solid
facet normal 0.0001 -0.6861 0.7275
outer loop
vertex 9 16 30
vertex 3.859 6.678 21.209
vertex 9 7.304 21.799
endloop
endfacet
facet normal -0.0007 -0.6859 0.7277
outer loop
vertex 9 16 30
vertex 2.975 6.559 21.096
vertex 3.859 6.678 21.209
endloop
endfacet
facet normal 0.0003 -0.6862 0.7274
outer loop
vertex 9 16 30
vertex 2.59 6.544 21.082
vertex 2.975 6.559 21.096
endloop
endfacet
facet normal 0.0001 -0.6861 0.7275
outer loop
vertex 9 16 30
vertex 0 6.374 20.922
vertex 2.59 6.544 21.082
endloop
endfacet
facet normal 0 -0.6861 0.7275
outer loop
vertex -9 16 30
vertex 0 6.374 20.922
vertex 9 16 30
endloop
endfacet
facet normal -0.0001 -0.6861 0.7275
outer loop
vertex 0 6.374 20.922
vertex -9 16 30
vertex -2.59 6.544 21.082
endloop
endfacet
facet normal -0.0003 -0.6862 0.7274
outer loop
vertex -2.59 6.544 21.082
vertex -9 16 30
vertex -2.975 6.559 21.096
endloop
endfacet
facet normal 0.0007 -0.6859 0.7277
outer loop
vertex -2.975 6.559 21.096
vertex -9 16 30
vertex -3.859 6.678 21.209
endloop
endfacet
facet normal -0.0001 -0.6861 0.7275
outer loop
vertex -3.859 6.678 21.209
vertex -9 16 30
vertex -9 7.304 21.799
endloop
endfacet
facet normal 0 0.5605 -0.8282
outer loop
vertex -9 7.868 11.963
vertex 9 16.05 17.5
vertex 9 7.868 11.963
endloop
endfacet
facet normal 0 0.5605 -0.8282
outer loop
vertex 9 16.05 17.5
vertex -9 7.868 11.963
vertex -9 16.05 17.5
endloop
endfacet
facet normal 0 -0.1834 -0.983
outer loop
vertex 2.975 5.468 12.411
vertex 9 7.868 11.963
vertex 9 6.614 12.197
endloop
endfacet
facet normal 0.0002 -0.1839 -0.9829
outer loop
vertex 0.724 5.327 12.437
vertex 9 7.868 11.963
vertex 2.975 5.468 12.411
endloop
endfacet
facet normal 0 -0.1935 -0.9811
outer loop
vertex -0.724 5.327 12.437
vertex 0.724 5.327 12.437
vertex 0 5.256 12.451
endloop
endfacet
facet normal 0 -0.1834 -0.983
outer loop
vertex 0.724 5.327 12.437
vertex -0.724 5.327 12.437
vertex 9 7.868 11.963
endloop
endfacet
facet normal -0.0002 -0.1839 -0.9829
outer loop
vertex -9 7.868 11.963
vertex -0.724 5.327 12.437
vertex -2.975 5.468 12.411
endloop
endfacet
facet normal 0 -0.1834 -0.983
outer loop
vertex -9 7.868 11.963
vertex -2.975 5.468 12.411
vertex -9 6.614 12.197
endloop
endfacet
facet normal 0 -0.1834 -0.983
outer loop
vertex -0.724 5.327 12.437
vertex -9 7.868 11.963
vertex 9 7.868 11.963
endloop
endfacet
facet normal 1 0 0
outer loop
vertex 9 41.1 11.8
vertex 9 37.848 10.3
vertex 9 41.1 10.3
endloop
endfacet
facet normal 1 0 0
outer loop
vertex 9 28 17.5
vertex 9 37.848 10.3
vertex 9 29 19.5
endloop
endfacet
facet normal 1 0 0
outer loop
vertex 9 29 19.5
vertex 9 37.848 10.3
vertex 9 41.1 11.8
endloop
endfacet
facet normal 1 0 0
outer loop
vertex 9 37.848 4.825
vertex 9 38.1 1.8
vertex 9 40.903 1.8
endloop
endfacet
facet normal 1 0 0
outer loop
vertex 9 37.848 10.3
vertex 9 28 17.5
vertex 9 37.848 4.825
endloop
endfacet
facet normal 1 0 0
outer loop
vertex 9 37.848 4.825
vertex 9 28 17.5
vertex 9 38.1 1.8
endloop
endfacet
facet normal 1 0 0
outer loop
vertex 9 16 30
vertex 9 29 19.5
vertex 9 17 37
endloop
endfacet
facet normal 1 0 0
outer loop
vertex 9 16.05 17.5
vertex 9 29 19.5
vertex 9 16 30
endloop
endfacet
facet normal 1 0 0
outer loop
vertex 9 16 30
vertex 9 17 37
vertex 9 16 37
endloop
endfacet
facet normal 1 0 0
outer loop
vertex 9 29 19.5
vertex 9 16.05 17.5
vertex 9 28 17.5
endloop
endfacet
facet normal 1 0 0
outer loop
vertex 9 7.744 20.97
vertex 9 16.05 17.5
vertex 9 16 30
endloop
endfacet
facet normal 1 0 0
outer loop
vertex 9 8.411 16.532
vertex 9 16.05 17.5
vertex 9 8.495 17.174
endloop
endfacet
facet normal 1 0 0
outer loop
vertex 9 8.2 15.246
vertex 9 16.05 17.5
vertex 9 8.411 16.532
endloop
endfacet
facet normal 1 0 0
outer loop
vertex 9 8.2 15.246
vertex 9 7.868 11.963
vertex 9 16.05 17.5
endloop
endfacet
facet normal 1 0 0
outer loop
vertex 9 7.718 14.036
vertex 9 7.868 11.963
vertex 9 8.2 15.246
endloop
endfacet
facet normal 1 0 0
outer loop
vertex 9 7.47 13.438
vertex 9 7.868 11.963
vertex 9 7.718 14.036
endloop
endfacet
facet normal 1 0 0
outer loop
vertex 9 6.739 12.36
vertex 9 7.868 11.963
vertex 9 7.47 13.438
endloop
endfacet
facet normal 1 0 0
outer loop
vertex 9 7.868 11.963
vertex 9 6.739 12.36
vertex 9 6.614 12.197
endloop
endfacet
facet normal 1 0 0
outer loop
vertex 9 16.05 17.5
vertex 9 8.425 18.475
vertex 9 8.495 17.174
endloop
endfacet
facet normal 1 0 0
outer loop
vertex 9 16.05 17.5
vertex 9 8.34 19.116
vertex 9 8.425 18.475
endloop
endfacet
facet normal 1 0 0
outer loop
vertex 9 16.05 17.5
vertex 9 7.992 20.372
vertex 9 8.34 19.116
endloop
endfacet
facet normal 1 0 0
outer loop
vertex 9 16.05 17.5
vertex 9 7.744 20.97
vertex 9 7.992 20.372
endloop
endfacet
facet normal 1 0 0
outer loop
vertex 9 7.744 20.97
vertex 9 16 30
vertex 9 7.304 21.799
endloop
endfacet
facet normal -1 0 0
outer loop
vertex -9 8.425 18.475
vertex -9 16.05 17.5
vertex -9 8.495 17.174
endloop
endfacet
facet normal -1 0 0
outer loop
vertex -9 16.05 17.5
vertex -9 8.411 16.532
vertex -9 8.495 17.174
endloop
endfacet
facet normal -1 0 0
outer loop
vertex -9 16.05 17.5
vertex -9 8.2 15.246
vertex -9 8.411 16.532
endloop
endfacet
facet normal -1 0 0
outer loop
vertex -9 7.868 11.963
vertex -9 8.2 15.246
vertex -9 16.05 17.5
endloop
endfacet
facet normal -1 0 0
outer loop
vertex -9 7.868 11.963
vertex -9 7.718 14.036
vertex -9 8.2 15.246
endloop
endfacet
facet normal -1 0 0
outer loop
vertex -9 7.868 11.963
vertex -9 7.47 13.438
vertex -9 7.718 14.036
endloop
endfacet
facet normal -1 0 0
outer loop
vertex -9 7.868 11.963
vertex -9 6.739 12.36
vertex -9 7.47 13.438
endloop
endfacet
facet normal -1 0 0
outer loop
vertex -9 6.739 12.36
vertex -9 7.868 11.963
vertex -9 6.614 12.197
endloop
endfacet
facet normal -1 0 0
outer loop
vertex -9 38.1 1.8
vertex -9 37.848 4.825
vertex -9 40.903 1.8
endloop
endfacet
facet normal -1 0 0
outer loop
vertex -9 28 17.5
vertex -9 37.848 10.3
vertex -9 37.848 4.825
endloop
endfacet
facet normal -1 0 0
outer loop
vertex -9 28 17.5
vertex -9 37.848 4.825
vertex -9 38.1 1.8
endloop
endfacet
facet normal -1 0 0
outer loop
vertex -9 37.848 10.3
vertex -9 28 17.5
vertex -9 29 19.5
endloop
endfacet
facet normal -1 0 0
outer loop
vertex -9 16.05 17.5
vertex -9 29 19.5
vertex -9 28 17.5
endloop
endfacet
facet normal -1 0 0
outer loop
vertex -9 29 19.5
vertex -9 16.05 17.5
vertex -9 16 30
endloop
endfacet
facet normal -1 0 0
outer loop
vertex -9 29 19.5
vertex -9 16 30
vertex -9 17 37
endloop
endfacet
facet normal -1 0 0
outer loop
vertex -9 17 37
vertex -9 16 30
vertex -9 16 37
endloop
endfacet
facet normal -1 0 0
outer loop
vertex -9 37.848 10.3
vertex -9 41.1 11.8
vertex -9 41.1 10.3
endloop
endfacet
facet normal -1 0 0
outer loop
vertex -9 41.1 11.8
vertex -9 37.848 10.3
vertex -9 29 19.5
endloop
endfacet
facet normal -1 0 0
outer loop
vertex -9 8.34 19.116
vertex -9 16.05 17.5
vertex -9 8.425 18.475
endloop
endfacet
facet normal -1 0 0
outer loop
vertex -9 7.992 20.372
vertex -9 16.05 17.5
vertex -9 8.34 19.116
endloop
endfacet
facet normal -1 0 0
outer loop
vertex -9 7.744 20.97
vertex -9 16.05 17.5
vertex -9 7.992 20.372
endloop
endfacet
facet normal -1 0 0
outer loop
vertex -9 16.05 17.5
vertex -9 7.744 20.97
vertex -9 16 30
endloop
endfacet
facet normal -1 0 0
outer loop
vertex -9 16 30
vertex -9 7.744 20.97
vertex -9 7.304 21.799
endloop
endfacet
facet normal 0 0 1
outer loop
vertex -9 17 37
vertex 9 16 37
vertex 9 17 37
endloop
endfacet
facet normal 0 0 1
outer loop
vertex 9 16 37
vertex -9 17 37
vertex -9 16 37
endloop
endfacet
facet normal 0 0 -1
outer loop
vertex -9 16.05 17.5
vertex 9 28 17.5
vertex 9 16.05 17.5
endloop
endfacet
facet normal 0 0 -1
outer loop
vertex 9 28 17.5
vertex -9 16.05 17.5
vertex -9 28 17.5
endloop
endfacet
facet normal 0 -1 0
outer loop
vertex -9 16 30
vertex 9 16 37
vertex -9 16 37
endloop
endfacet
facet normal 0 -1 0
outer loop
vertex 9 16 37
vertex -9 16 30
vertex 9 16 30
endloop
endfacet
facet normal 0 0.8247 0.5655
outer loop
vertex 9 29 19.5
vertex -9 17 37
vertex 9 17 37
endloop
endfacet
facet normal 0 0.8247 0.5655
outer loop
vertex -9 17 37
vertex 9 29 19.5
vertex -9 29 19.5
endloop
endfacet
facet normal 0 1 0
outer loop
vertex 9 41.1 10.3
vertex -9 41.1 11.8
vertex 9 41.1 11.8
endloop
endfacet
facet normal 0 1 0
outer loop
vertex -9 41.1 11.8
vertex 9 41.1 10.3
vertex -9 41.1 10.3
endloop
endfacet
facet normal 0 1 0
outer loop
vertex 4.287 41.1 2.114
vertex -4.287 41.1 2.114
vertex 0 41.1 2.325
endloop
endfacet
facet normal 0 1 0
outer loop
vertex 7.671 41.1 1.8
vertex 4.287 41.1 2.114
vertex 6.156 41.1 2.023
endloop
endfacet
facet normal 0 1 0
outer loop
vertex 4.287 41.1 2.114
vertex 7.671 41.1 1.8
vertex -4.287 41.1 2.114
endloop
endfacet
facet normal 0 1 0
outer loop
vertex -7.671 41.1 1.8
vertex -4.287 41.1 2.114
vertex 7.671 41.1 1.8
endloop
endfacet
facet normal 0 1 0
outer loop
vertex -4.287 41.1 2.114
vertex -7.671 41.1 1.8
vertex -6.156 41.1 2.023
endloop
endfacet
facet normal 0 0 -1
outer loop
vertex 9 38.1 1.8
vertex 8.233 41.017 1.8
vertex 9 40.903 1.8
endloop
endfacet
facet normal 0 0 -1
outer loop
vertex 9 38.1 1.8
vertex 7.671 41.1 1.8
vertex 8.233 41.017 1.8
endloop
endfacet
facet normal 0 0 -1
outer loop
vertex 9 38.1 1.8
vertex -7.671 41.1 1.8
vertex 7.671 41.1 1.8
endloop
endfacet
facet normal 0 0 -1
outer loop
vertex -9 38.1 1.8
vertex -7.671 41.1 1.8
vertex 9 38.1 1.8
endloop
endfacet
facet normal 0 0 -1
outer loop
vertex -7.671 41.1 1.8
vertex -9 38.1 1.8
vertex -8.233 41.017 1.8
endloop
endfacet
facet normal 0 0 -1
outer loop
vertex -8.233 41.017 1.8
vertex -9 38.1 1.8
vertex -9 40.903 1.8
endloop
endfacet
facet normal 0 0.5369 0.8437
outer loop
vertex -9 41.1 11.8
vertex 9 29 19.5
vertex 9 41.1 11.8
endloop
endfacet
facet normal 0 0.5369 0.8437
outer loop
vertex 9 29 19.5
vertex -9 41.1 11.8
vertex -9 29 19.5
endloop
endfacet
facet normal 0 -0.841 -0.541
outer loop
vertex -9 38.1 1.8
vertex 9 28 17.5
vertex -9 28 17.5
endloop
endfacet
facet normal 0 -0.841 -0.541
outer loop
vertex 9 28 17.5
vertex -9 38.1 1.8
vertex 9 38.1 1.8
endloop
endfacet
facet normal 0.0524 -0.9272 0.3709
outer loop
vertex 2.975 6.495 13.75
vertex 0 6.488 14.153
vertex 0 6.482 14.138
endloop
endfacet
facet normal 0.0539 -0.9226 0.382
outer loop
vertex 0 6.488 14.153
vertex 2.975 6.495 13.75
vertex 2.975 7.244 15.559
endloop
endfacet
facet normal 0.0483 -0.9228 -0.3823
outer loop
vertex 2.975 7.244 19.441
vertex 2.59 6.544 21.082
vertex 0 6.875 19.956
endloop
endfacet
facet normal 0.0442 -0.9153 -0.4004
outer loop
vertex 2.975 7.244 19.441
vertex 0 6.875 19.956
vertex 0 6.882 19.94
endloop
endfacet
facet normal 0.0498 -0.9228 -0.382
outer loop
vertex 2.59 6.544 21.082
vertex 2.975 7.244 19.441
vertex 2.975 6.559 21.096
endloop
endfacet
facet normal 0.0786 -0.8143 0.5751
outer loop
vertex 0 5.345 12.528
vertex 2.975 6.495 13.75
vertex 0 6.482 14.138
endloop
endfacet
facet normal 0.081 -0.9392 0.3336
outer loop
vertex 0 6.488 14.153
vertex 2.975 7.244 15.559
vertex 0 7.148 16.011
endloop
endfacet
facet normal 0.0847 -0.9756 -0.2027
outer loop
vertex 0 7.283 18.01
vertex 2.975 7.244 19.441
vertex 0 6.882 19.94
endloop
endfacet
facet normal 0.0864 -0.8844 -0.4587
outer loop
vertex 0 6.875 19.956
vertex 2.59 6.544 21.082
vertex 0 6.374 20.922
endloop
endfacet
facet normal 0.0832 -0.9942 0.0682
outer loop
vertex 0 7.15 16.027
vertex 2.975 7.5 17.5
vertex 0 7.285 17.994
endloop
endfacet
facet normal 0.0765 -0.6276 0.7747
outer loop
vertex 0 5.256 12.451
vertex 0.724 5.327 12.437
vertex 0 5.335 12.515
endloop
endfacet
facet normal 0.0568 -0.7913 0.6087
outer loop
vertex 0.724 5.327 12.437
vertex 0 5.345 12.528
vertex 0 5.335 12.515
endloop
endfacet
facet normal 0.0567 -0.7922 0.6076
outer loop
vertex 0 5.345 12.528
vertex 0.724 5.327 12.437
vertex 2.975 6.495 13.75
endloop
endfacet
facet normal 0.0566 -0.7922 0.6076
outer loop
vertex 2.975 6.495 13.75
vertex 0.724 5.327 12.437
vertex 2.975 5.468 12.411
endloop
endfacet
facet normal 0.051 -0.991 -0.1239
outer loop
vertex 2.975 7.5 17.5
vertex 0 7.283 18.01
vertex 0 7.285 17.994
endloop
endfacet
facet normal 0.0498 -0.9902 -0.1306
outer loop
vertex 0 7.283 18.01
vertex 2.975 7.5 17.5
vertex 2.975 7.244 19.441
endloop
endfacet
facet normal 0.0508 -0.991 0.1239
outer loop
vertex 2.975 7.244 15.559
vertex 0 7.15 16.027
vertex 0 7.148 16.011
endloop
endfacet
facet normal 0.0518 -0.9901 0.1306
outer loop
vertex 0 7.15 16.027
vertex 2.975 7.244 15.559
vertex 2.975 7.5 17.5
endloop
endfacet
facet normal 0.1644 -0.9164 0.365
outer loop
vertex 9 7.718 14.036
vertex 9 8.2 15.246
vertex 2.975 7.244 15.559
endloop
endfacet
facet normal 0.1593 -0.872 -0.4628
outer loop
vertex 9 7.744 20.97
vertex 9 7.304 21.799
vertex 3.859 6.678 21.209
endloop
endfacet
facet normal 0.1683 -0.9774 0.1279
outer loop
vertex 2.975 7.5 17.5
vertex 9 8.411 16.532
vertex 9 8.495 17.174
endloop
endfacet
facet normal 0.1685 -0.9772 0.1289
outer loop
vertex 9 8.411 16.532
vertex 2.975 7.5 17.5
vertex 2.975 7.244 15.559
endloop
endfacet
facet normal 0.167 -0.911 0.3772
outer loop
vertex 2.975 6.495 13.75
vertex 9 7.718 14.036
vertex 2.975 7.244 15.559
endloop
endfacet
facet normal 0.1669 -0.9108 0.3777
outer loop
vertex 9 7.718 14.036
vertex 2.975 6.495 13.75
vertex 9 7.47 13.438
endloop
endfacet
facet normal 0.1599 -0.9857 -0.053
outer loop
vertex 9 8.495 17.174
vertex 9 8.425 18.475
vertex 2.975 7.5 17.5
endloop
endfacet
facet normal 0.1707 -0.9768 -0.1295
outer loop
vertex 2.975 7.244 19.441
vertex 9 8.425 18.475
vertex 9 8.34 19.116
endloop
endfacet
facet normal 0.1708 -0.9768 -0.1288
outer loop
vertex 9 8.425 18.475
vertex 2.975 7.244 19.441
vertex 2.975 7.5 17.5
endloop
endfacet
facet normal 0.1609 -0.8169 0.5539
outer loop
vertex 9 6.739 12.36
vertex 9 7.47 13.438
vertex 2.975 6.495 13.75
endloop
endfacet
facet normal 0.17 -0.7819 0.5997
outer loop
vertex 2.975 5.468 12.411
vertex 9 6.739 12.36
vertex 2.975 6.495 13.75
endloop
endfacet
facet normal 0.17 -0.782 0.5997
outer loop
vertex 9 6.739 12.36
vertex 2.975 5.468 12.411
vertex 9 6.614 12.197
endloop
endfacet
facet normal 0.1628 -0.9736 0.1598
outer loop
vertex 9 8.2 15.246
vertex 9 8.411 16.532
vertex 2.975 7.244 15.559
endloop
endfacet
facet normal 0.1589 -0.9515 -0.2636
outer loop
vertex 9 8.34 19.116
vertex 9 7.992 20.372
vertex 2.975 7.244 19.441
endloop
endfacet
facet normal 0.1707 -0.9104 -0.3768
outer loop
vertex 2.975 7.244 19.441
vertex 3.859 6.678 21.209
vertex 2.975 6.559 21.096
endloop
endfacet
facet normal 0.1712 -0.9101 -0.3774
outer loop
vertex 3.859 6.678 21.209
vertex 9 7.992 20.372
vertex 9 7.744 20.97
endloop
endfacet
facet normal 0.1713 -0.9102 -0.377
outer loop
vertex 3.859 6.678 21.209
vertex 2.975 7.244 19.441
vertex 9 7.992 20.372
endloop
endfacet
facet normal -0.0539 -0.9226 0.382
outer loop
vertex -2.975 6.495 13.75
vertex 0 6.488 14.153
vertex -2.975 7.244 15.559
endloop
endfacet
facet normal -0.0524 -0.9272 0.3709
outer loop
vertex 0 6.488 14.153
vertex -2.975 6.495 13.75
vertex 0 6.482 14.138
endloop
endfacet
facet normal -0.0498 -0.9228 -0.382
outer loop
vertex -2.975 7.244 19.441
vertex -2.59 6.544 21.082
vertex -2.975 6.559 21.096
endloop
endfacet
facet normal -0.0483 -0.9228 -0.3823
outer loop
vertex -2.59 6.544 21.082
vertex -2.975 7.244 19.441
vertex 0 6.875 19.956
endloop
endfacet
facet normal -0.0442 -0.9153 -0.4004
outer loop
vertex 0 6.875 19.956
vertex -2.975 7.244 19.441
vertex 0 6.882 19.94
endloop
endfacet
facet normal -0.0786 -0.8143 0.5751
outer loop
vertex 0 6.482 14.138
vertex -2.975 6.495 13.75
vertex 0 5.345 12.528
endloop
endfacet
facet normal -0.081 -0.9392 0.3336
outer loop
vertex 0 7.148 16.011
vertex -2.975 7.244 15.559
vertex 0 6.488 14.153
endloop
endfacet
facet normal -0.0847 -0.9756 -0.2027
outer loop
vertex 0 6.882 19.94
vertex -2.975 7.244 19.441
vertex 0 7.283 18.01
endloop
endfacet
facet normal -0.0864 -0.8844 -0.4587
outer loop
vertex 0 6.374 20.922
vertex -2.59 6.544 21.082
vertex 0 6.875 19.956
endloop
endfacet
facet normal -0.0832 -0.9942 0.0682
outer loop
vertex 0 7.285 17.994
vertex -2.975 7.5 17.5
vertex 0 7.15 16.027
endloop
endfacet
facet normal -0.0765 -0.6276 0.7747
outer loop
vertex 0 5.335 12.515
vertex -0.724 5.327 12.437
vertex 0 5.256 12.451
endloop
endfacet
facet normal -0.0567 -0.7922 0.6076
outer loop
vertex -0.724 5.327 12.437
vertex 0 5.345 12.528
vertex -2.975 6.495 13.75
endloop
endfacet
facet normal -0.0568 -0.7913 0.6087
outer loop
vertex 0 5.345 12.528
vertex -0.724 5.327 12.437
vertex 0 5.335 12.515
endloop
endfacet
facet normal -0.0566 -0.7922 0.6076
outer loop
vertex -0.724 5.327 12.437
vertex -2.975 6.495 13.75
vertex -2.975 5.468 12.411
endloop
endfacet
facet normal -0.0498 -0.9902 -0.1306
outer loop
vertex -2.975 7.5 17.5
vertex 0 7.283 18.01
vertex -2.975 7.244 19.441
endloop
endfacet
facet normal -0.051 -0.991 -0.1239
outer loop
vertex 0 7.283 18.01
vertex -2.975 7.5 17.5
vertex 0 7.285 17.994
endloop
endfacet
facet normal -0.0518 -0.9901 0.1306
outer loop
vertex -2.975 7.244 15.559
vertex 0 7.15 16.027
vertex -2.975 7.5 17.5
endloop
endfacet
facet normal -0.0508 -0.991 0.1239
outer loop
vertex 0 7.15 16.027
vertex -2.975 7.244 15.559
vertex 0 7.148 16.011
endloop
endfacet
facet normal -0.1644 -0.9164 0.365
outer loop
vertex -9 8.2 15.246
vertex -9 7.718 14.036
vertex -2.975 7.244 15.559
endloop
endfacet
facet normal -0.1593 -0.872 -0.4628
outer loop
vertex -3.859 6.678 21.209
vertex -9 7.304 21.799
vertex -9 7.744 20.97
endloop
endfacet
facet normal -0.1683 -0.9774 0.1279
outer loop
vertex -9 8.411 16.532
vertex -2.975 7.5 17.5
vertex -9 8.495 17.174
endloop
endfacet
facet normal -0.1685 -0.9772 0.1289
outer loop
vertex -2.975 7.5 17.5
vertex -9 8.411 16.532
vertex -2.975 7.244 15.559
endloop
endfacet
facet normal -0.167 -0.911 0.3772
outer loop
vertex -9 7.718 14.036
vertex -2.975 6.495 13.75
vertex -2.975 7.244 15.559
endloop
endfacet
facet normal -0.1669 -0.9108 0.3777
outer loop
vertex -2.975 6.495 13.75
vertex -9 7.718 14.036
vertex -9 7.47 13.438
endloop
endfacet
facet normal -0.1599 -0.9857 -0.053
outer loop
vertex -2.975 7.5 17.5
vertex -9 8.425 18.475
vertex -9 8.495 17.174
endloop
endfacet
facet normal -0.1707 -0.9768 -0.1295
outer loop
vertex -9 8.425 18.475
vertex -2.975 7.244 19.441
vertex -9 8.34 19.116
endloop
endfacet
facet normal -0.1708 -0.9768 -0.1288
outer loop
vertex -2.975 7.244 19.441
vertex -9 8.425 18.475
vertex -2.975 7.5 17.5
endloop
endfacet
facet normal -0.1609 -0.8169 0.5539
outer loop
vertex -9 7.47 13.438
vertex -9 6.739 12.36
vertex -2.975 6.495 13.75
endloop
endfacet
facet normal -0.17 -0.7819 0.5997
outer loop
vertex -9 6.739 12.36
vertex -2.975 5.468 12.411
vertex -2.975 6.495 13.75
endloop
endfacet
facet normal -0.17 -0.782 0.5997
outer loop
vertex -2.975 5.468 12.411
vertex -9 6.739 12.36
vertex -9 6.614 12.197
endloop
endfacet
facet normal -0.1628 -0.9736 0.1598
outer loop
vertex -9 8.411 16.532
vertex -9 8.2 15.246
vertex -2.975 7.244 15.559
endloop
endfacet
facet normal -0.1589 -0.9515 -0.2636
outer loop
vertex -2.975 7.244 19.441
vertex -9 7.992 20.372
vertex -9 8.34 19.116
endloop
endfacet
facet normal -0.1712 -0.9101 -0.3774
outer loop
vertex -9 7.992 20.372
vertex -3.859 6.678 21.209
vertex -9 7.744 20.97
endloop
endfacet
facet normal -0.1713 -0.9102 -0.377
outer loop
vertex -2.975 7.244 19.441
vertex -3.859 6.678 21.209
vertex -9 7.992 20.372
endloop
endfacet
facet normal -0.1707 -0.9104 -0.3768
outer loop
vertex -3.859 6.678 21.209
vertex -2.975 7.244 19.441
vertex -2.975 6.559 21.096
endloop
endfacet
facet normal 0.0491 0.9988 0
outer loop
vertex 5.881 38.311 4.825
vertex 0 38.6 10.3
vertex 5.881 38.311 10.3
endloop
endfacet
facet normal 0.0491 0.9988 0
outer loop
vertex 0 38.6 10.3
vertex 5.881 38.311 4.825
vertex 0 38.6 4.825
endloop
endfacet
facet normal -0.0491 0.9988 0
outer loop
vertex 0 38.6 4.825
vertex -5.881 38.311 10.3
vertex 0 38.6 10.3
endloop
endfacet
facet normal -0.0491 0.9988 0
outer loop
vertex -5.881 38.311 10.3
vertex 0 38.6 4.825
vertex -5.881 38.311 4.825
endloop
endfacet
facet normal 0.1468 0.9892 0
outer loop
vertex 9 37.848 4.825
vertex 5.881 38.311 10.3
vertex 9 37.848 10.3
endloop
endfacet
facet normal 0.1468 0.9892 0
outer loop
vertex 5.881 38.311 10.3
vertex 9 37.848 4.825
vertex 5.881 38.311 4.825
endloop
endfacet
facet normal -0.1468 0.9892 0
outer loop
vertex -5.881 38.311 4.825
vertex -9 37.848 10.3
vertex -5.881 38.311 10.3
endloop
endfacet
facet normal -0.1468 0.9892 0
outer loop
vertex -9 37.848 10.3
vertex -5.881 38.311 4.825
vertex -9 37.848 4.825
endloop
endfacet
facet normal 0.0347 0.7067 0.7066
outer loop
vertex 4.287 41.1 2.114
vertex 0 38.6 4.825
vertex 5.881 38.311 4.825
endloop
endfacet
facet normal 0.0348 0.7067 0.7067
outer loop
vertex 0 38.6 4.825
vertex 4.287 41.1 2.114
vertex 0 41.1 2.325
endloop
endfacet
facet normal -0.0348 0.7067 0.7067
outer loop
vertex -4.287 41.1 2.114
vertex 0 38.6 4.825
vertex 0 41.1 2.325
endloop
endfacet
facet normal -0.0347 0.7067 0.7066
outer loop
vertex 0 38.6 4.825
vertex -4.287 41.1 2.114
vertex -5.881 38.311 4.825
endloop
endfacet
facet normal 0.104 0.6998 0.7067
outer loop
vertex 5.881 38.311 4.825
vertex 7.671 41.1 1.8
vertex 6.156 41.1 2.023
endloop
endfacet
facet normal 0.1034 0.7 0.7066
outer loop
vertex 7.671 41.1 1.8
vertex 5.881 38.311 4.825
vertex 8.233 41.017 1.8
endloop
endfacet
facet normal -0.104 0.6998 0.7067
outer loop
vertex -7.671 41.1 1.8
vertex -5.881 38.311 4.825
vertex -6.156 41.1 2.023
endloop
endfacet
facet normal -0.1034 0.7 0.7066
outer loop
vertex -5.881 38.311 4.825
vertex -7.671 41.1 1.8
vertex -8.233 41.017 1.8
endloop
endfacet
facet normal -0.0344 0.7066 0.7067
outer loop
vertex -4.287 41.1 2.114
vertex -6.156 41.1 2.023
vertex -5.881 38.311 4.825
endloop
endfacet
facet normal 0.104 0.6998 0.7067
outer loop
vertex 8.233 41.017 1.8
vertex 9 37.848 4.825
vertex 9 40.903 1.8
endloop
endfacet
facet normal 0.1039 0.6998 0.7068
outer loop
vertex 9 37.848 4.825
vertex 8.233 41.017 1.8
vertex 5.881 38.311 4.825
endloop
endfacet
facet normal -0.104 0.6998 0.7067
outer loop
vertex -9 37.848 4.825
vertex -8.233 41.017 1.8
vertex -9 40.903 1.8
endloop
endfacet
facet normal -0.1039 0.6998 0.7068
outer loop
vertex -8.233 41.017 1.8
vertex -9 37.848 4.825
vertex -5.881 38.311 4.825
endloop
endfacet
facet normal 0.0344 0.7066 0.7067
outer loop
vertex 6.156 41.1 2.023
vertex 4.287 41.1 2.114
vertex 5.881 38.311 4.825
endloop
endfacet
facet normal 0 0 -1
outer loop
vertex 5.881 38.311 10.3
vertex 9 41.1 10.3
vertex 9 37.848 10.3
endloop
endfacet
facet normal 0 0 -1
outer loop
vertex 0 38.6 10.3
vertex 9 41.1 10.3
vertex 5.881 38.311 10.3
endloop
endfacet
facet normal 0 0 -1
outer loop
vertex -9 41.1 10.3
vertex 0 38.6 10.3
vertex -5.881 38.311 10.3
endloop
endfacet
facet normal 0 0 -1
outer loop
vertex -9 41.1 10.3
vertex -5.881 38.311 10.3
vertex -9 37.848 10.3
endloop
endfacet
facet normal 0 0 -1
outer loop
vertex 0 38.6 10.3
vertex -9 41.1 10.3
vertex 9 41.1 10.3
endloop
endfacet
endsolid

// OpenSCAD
/* A plastic guide that sits on my MKS Urban Step In pedals to stop me clipping in to the back of them. 

Released under CERN open hardware license, Richard Bowman, 2016
*/

/*
The origin is on the plane of the platform side of the pedal (that's z=0) with y=0 
at the outside edge of the rear wire.  x=0 is the centre of the cleat.
*/
use <utilities.scad>;

wire_top=37; //top of the gripping wire
d = 0.05; //a small distance

module y_w_h_point(y,w,h){
    translate([0,y,0]) cube([w,d,2*h],center=true);
}

module pedal_bits_front(){
    union(){
        //ensure we don't protrude under the wire or above it
        //translate([0,-999+4,0]) cube(999*2,center=true);
        //translate([0,0,999+wire_top-1]) cube(999*2,center=true);
        
        sequential_hull(){
            y_w_h_point(0, 6, 25);
            y_w_h_point(9.5, 6, 25);
            y_w_h_point(14, 6, 22);
            hull(){
                y_w_h_point(11, 17, 22);
                y_w_h_point(11, 21, 17);
            }
            hull(){
                y_w_h_point(27, 15, 22);
                y_w_h_point(30, 18, 17);
            }
            y_w_h_point(30, 6, 17);
            y_w_h_point(36, 6, 7.67);
        }
        
        //spring
        translate([0,5,19]) rotate([0,90,0]) cylinder(d=13,h=50, center=true);
        //adjusting bolt
        //translate([0,18.5, 21]) cylinder(d1=10, d2=16, h=wire_top-21);
        translate([0,19.5, 21]) cube([10,12,(wire_top-21)*2],center=true);
    }
}

module guide_front(){
    rotate([atan((wire_top-1-25)/(29-4))+180,0,0]) difference(){
        hull(){
            translate([0,4,wire_top-1]) cube([20,d,d],center=true);
            translate([0,29,25]) cube([18,d,d],center=true);
            translate([0,4,18]) cube([20,d,d],center=true);
            translate([0,32,15]) cube([28,d,d],center=true);
        }
        pedal_bits();

        //cable tie point
        translate([0,16, 27]) cube([60,5,3],center=true);
    }
}

module rz_point(r,z){
    translate([0,0,z]) cylinder(r=r, h=d, center=true);
}

module guide_back(){
    axle_h = 17.5;
    back_edge = [0,39.6-1.0,10.3]; //upped this for a tighter fit
    w = 18;
    difference(){
        sequential_hull(){
            translate([0,0,axle_h]) rotate([-atan((axle_h-back_edge[2])/back_edge[1]),0,0]) translate([0,7,0]) cube([18,7/2,8],center=true);
            translate([-w/2,16,axle_h]) cube([w,d,30-axle_h]);
            translate([-w/2,16,axle_h]) cube([w,1,37-axle_h]);
            translate([-w/2,28,axle_h]) cube([w,1,2]);
            //translate(back_edge+[0,-1,-3.5]) cube([w,3,10],center=true);
            translate(back_edge+[0,1,-3.5]) cube([w,3,10],center=true);
        }
        
        //axle
        translate([0,0,axle_h]) rotate([0,90,0]) reflect([0,0,1]) sequential_hull(){
            rz_point(7.3,0);
            rz_point(7.5,3);
            rz_point(9,12);
        }
        
        //back edge
        roc = 60;
        difference(){
            translate([-999,0,back_edge[2]-10]) cube([2,2,0]*999 + [0,0,10]);
            translate(back_edge-[0,roc,0]) sequential_hull(){
                $fn=64;
                rz_point(roc,0);
                rz_point(roc,-5.5);
                rz_point(roc+10,-5.5-10);
            }
        }
    }
}

guide_back();
